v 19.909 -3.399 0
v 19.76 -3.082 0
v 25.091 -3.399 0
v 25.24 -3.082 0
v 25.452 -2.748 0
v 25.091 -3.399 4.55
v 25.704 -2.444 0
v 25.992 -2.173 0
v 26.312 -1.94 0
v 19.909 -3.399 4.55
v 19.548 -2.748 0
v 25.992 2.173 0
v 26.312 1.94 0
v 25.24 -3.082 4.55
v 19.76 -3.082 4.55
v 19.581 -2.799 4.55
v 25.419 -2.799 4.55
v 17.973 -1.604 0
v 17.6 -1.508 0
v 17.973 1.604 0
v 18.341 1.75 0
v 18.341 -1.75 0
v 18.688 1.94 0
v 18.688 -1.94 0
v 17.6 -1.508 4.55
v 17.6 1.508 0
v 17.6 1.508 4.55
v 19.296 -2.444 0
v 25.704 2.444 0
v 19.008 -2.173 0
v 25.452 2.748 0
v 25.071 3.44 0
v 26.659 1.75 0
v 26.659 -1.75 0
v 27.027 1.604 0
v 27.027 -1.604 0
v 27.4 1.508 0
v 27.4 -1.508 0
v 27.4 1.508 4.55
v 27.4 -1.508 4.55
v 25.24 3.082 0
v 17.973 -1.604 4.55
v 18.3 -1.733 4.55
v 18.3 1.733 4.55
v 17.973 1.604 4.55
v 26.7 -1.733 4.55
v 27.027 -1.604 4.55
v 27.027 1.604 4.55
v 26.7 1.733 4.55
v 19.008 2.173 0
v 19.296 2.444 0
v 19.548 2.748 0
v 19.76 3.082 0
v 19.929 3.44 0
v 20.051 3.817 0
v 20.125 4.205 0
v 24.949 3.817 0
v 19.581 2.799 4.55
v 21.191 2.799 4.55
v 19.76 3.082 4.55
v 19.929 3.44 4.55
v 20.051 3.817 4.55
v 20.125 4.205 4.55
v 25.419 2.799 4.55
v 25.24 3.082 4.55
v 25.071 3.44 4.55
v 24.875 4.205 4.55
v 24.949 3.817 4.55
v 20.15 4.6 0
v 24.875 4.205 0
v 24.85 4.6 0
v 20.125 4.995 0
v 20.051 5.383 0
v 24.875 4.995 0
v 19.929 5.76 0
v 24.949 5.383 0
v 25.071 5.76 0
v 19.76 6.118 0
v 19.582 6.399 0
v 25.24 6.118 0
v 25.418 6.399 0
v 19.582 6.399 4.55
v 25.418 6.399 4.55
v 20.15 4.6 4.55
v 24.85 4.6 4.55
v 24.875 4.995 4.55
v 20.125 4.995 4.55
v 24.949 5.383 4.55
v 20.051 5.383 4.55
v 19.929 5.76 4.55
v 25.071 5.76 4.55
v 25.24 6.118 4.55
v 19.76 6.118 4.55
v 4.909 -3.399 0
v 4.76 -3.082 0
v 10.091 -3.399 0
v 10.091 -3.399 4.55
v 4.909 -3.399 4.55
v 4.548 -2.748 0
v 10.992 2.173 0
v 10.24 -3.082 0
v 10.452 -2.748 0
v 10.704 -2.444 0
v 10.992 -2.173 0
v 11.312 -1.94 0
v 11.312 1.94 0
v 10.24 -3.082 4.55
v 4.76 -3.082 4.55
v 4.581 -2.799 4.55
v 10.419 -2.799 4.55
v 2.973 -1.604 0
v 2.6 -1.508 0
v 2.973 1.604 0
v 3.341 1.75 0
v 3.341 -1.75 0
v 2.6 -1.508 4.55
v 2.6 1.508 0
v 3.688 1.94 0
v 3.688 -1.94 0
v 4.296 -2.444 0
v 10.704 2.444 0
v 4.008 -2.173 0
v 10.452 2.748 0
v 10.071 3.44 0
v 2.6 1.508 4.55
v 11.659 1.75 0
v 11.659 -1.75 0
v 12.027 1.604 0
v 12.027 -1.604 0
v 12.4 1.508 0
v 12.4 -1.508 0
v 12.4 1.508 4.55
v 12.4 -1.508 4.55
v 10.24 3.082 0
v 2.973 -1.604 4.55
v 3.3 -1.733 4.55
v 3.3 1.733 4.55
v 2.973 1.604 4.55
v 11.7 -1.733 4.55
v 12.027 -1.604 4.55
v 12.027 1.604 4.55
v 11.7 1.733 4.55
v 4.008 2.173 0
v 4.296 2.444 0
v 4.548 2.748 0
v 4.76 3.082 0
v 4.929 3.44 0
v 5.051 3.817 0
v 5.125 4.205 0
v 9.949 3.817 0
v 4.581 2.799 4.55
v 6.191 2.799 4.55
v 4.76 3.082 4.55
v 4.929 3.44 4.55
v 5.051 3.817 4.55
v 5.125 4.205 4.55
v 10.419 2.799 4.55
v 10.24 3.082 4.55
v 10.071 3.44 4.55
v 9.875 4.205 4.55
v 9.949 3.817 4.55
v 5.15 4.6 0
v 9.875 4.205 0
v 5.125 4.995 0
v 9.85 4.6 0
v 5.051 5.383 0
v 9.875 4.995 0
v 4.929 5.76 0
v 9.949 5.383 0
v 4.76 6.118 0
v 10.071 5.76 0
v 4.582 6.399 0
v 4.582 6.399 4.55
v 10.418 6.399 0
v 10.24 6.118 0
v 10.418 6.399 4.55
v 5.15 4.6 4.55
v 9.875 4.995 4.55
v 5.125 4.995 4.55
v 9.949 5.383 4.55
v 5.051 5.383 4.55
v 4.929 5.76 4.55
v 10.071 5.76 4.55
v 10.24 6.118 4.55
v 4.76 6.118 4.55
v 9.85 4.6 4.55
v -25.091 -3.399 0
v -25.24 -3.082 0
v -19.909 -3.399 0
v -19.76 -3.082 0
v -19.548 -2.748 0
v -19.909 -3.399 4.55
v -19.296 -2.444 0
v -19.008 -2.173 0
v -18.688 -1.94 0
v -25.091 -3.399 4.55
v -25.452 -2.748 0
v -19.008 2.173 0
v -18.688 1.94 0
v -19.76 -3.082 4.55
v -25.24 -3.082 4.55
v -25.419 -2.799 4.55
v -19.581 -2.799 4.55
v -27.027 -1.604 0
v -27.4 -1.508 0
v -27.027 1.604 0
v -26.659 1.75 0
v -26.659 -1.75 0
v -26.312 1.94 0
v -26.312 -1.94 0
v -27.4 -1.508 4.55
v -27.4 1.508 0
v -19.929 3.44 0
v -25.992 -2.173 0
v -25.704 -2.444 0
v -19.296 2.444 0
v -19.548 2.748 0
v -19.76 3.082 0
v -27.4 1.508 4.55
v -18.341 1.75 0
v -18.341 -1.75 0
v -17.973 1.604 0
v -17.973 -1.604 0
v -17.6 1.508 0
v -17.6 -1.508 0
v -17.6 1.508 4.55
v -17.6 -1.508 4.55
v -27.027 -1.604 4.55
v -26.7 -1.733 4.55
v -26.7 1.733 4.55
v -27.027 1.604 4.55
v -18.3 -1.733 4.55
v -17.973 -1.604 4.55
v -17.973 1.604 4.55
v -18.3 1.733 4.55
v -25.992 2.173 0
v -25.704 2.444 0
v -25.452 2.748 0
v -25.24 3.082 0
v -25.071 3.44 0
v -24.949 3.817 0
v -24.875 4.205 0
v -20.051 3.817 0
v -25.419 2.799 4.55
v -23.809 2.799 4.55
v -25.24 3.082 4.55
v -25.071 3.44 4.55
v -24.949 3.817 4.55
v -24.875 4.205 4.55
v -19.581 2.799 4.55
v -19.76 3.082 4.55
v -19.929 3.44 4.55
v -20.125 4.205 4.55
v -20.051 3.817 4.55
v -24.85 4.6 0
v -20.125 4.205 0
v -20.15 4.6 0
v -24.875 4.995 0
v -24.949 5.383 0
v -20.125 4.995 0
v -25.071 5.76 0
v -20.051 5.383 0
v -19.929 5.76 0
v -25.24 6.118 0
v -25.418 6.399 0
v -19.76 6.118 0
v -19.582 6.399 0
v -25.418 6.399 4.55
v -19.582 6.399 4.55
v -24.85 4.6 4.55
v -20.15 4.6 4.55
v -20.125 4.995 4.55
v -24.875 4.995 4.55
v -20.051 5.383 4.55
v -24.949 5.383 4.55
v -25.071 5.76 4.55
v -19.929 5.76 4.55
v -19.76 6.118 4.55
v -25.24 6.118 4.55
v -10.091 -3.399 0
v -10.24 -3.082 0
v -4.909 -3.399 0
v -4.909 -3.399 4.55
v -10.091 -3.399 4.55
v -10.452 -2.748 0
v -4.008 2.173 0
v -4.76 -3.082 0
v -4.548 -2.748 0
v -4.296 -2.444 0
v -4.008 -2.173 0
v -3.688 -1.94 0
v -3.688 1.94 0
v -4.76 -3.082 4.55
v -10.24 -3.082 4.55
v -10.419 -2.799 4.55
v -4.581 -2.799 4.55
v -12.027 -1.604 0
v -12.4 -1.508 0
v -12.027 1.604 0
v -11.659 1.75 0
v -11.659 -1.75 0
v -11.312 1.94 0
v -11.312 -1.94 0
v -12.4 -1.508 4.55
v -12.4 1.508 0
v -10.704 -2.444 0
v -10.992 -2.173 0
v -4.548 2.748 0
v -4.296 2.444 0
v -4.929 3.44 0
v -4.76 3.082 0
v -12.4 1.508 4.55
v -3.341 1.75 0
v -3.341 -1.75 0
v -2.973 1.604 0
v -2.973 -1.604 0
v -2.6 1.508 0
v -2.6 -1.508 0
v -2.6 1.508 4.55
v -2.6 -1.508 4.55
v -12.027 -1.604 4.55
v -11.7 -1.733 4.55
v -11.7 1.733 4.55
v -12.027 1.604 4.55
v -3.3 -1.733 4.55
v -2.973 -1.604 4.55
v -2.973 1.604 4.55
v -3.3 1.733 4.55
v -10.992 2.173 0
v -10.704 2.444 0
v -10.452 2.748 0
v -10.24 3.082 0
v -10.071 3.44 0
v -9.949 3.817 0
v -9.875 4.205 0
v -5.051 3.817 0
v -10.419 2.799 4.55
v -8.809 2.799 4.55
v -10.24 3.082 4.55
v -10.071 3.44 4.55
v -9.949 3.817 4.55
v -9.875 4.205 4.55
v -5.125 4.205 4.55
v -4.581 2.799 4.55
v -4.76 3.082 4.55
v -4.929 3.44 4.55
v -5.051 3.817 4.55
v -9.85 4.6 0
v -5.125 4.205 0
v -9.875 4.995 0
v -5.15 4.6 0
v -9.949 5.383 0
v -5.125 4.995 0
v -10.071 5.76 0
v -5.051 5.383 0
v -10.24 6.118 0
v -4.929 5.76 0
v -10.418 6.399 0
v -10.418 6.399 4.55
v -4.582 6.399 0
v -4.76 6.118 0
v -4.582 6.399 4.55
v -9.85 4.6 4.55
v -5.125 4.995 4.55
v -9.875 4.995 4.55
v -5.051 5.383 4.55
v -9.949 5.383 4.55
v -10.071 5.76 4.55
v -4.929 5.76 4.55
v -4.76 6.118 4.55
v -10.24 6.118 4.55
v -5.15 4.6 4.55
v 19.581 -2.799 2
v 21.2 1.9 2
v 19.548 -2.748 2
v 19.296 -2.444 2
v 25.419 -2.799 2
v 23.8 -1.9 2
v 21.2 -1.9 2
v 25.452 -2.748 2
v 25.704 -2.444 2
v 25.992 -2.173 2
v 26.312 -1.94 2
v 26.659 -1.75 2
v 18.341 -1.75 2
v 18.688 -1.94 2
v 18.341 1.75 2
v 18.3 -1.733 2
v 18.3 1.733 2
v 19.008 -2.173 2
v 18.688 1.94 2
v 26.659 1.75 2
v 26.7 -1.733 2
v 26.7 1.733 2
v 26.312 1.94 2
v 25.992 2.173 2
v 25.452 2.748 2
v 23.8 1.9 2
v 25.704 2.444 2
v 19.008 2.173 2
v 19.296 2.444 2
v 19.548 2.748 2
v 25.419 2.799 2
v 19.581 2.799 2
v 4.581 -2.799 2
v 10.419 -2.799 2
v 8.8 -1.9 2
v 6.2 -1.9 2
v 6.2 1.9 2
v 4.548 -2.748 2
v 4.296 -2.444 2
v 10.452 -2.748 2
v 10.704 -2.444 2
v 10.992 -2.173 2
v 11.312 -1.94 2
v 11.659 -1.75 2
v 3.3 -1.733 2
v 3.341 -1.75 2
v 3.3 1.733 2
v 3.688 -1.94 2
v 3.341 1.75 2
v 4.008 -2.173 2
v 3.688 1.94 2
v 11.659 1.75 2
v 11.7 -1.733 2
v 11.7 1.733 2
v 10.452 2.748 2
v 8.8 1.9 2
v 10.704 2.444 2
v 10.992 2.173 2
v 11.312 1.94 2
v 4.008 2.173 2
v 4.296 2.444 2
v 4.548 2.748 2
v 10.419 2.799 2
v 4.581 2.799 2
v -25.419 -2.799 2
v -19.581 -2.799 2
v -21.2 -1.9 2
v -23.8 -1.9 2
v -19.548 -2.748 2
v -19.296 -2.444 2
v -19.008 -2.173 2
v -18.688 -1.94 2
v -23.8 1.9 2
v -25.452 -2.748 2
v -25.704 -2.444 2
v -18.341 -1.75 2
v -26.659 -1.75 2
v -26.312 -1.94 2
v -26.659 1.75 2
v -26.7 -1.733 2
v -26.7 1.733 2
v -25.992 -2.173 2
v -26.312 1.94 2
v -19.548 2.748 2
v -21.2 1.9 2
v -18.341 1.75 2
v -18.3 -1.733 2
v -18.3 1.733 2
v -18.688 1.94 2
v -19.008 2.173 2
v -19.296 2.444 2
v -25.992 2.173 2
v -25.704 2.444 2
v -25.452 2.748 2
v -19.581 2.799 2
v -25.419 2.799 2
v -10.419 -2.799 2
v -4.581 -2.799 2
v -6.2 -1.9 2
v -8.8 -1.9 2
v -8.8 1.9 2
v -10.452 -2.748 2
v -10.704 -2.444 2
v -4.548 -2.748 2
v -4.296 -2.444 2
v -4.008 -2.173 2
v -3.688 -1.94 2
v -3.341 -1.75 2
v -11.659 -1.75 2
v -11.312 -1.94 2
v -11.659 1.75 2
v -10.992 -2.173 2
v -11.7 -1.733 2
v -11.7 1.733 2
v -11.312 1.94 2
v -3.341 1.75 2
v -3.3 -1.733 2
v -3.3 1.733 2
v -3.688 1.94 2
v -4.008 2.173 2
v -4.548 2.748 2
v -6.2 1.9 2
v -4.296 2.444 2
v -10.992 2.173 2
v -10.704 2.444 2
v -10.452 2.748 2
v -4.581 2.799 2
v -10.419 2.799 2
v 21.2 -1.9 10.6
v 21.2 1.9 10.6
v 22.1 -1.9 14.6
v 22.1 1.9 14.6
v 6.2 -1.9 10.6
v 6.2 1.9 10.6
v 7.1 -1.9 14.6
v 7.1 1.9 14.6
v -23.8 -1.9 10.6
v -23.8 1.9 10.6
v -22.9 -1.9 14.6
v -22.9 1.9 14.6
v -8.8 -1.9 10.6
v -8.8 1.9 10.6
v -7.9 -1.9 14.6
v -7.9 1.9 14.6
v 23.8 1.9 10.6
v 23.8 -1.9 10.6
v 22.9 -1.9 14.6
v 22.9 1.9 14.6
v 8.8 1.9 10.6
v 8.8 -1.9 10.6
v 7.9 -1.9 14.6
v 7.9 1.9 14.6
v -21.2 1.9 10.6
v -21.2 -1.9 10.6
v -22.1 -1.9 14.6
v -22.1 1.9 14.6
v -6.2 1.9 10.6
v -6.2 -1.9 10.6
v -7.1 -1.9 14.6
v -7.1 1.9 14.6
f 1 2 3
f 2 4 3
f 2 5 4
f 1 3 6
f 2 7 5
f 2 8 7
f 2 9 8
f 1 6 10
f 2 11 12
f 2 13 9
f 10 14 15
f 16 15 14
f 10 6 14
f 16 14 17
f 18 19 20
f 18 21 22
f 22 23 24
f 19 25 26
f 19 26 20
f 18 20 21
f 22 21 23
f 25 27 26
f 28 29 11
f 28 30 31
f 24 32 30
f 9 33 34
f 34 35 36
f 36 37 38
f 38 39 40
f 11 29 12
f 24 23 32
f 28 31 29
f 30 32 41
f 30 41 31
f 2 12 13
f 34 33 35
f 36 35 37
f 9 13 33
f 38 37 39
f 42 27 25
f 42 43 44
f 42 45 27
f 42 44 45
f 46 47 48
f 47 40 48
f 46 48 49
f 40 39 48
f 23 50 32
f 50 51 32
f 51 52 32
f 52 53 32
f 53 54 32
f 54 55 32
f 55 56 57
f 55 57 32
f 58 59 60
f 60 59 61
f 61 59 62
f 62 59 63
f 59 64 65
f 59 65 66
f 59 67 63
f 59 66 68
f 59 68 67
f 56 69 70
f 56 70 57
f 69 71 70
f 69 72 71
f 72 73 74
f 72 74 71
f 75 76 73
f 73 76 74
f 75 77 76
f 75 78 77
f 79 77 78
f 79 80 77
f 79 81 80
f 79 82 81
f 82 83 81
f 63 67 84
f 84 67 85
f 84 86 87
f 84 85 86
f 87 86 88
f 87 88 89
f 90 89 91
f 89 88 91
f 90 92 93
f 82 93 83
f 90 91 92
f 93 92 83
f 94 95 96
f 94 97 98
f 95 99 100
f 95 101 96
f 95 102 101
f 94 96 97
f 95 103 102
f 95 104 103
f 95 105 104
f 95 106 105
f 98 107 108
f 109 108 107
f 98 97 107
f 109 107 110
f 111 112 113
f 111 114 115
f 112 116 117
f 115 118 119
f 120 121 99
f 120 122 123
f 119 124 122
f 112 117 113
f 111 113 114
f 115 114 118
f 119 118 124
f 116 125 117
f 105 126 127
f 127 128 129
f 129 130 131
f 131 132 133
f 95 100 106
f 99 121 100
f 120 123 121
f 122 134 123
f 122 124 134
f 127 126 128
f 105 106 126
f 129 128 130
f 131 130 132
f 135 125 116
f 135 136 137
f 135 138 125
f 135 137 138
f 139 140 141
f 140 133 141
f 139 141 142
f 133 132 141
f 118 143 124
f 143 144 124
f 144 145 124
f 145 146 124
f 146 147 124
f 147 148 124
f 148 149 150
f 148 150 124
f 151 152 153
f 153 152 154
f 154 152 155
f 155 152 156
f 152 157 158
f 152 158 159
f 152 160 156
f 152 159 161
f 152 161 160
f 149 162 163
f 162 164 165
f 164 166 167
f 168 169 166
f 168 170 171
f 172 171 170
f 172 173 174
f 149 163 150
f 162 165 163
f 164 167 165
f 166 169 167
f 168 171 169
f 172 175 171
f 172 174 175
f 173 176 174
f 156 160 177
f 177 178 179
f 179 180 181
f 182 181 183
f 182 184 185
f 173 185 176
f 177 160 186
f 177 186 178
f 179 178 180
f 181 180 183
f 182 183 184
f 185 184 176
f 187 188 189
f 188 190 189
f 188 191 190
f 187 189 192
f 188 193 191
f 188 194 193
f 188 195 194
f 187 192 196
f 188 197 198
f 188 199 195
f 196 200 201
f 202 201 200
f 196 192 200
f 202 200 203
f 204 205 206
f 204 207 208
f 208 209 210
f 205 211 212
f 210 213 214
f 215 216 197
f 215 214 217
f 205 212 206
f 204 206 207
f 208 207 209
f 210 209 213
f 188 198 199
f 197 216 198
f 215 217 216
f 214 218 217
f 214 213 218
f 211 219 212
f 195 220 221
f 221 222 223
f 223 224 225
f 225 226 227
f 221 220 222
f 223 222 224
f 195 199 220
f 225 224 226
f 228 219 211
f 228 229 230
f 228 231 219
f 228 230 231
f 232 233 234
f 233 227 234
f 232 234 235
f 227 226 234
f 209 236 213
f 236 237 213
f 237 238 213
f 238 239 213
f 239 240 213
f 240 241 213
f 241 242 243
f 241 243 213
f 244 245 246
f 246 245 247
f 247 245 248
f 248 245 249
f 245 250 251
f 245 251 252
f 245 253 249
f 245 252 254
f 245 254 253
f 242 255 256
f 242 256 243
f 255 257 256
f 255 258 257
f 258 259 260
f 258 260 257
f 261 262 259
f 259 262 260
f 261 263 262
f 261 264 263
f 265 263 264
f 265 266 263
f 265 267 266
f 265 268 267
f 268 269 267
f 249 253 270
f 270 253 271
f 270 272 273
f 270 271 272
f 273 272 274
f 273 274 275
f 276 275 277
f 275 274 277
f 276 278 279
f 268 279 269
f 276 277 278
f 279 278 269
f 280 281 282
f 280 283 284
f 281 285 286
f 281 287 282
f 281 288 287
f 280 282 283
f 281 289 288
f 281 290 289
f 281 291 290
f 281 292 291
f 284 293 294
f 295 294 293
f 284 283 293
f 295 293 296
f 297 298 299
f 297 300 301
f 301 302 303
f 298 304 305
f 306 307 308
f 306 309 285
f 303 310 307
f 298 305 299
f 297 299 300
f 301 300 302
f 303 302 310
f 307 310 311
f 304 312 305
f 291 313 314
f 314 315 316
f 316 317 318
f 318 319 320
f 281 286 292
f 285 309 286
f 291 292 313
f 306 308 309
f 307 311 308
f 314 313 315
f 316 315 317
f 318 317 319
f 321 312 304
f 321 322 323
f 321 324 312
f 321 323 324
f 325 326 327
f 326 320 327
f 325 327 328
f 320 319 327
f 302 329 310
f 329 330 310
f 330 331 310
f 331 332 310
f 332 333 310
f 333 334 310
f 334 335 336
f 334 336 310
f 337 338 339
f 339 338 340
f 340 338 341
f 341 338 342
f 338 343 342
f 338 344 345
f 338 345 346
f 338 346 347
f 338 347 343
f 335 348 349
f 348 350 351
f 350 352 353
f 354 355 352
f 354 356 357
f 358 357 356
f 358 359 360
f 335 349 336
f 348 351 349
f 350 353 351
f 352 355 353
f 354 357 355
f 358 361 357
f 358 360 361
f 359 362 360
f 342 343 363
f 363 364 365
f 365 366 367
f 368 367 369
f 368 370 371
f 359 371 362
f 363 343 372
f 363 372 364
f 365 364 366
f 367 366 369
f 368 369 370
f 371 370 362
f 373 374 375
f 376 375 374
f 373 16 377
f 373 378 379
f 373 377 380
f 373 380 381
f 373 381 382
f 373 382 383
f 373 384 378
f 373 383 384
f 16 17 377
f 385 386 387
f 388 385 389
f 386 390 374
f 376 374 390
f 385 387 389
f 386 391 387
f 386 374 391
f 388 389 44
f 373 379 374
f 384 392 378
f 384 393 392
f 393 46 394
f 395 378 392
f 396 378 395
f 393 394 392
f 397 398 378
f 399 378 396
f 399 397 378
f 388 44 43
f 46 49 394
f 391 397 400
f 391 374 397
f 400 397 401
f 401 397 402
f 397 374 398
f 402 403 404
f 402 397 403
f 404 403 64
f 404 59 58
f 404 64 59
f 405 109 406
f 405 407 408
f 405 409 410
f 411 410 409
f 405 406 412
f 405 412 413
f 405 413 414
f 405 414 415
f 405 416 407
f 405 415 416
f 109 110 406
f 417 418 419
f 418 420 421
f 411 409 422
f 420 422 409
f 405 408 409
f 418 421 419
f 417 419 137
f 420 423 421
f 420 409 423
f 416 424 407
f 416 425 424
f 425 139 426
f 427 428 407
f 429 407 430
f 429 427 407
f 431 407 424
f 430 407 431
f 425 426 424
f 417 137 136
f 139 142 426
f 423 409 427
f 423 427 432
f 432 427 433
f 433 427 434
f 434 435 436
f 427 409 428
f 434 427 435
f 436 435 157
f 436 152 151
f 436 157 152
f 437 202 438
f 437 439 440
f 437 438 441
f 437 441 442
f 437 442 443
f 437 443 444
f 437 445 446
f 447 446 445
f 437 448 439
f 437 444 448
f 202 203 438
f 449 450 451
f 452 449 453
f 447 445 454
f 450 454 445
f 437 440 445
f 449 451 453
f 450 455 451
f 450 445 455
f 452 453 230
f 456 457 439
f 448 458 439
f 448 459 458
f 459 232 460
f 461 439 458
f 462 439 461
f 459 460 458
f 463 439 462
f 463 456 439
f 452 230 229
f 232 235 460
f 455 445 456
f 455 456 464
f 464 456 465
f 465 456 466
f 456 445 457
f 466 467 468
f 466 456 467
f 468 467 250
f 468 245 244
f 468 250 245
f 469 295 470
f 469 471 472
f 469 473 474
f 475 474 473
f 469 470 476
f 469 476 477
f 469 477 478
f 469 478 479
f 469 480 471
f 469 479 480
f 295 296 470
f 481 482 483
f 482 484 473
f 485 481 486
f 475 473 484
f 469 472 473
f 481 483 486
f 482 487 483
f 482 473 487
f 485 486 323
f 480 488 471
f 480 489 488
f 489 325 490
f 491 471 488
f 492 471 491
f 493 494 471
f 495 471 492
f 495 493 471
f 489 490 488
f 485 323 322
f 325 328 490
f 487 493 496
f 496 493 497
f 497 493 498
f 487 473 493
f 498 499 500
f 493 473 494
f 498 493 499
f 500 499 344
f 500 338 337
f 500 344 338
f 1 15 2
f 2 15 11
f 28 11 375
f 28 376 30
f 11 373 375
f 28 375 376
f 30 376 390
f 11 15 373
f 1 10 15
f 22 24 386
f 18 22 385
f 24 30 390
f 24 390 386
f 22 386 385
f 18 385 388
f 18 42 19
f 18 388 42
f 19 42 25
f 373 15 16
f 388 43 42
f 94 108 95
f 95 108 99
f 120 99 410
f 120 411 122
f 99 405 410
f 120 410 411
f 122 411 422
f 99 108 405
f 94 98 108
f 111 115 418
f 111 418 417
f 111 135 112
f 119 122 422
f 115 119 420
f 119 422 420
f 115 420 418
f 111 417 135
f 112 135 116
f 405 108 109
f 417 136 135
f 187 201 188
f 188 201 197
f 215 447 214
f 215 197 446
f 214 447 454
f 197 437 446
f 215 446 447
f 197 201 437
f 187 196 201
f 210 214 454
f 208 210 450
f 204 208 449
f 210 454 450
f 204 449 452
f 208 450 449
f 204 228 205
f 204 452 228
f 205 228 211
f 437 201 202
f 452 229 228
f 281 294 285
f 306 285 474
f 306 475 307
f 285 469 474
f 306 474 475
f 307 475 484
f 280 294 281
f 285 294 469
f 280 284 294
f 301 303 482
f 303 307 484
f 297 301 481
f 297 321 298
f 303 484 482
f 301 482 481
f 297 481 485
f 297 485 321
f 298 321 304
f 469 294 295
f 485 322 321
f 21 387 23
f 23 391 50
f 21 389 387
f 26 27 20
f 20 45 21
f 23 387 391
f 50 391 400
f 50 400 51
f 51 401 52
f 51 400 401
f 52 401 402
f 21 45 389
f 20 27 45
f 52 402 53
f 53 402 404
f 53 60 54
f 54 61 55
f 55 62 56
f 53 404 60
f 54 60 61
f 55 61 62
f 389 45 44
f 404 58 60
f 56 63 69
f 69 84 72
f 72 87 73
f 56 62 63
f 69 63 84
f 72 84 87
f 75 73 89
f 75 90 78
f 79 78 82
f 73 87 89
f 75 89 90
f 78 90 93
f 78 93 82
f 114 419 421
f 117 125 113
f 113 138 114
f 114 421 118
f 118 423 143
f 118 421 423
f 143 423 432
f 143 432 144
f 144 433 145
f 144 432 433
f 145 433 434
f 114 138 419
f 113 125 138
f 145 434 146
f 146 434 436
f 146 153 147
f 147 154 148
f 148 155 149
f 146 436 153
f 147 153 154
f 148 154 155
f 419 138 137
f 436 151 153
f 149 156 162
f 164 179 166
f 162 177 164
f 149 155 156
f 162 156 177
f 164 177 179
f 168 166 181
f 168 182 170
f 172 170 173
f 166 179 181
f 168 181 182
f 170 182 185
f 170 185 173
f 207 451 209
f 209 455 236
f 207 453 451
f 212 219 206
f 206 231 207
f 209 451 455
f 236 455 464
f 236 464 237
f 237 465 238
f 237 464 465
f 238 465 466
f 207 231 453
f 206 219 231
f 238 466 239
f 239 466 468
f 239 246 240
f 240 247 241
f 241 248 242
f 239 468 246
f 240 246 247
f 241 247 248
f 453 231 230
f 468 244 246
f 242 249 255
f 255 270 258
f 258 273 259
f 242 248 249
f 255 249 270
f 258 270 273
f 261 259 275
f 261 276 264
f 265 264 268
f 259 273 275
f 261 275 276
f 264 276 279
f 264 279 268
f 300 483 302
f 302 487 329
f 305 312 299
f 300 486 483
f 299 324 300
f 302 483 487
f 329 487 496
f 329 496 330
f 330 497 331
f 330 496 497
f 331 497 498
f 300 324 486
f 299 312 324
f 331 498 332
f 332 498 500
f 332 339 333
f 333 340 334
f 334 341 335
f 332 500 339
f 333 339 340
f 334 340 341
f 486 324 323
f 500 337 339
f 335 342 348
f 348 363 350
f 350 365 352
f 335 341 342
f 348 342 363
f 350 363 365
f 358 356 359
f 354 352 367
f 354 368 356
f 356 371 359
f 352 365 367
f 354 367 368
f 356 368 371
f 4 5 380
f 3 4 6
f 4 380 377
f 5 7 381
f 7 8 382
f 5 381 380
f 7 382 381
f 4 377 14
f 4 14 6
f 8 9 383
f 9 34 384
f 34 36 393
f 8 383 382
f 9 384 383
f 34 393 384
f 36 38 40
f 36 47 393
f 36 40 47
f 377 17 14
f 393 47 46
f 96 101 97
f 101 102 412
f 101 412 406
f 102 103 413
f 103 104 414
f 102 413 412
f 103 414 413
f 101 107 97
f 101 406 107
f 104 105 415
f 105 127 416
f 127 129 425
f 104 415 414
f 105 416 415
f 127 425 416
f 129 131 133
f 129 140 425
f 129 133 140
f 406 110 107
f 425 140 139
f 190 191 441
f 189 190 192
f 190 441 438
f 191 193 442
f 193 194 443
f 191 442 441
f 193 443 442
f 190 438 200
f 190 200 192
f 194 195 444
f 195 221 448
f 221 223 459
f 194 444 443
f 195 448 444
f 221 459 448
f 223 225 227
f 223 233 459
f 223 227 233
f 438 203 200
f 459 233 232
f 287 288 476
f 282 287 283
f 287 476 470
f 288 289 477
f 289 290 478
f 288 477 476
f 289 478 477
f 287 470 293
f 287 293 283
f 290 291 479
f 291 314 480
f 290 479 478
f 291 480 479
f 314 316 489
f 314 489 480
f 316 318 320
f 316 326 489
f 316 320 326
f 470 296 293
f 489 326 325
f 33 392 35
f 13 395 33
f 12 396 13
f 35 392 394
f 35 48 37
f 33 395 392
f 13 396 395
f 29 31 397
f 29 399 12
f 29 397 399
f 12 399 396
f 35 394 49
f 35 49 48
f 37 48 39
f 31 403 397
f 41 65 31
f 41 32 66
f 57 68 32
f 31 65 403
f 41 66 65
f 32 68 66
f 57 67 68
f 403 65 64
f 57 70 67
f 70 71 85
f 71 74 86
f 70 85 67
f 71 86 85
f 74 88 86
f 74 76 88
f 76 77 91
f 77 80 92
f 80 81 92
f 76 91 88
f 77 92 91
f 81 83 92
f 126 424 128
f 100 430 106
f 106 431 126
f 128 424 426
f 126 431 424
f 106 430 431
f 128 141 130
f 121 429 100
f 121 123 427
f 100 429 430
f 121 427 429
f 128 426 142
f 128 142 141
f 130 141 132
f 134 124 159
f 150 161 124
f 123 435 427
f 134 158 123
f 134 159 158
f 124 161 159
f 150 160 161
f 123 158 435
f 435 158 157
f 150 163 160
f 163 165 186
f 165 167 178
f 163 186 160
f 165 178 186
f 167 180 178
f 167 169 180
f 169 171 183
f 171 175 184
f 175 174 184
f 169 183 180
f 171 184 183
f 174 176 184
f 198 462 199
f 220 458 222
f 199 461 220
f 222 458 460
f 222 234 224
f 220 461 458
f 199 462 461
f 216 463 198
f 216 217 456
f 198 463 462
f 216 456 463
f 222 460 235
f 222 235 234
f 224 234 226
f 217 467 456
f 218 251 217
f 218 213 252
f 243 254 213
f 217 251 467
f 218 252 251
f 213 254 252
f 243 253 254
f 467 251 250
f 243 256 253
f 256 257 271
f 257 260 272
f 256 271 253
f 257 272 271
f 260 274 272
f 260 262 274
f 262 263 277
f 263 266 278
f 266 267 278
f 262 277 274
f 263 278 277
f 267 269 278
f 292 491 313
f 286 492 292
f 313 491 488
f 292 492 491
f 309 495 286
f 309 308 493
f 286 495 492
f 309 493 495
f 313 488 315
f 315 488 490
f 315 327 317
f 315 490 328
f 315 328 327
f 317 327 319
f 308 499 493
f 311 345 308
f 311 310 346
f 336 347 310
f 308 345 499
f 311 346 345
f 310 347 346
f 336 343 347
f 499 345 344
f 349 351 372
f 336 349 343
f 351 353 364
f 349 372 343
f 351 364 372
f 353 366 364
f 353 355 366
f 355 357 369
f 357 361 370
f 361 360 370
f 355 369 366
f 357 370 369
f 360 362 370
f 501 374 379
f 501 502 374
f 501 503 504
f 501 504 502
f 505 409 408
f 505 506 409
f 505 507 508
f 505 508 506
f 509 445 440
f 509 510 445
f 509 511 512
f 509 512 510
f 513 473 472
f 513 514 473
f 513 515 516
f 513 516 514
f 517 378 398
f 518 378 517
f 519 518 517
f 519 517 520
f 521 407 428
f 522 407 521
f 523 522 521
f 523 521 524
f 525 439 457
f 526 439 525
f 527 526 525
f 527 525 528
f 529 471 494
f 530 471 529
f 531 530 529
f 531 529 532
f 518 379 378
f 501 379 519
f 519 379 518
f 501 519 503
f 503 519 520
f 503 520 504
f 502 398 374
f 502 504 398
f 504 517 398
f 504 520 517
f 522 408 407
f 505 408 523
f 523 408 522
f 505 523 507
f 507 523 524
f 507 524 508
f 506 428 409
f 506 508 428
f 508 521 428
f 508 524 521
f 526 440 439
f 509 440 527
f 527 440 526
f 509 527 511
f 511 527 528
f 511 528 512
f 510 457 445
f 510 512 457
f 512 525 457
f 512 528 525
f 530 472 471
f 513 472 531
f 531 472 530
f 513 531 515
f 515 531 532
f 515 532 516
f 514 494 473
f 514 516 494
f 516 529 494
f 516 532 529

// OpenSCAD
$fn = 50;

difference() {
	union() {
		translate(v = [-22.5, 0, 0]) {
			rotate(a = [0, 0, 0]) {
				difference() {
					union() {
						translate(v = [0, 0, 0]) {
							rotate(a = [0, 0, 0]) {
								difference() {
									union() {
										translate(v = [0, 0, 0]) {
											rotate(a = [0, 0, 0]) {
												difference() {
													union() {
														translate(v = [0, 1.5, 0]) {
															hull() {
																translate(v = [-4.15, 4.15, 0]) {
																	cylinder(h = 4.55, r = 0.75);
																}
																translate(v = [4.15, 4.15, 0]) {
																	cylinder(h = 4.55, r = 0.75);
																}
																translate(v = [-4.15, -4.15, 0]) {
																	cylinder(h = 4.55, r = 0.75);
																}
																translate(v = [4.15, -4.15, 0]) {
																	cylinder(h = 4.55, r = 0.75);
																}
															}
														}
													}
													union() {
														translate(v = [0, 0, 2.0]) {
															hull() {
																translate(v = [-3.9000000000000004, 2.5, 0]) {
																	cylinder(h = 2.65, r = 0.3);
																}
																translate(v = [3.9000000000000004, 2.5, 0]) {
																	cylinder(h = 2.65, r = 0.3);
																}
																translate(v = [-3.9000000000000004, -2.5, 0]) {
																	cylinder(h = 2.65, r = 0.3);
																}
																translate(v = [3.9000000000000004, -2.5, 0]) {
																	cylinder(h = 2.65, r = 0.3);
																}
															}
														}
														translate(v = [-5.5, -4.6, -0.1]) {
															cylinder(h = 4.75, r = 3.15);
														}
														translate(v = [-5.5, 4.6, -0.1]) {
															cylinder(h = 4.75, r = 3.15);
														}
														translate(v = [5.5, -4.6, -0.1]) {
															cylinder(h = 4.75, r = 3.15);
														}
														translate(v = [5.5, 4.6, -0.1]) {
															cylinder(h = 4.75, r = 3.15);
														}
													}
												}
											}
										}
										translate(v = [0, 0, 0]) {
											rotate(a = [0, 0, 0]) {
												difference() {
													union() {
														translate(v = [-1.4000000000000001, -1.9, 1.95]) {
															cube(size = [2.8000000000000003, 3.8, 12.65]);
														}
													}
													union() {
														translate(v = [0, 2.0, 0]) {
															rotate(a = [90, 0, 0]) {
																linear_extrude(height = 4.0) {
																	polygon(points = [[-1.3, 1.85], [-1.3, 10.6], [-0.4, 14.6], [-0.4, 14.799999999999999], [-1.6, 14.799999999999999], [-1.6, 1.85]]);
																}
															}
														}
														translate(v = [0, 2.0, 0]) {
															rotate(a = [90, 0, 0]) {
																linear_extrude(height = 4.0) {
																	polygon(points = [[1.3, 1.85], [1.3, 10.6], [0.4, 14.6], [0.4, 14.799999999999999], [1.6, 14.799999999999999], [1.6, 1.85]]);
																}
															}
														}
													}
												}
											}
										}
									}
									union();
								}
							}
						}
					}
					union();
				}
			}
		}
		translate(v = [-7.5, 0, 0]) {
			rotate(a = [0, 0, 0]) {
				difference() {
					union() {
						translate(v = [0, 0, 0]) {
							rotate(a = [0, 0, 0]) {
								difference() {
									union() {
										translate(v = [0, 0, 0]) {
											rotate(a = [0, 0, 0]) {
												difference() {
													union() {
														translate(v = [0, 1.5, 0]) {
															hull() {
																translate(v = [-4.15, 4.15, 0]) {
																	cylinder(h = 4.55, r = 0.75);
																}
																translate(v = [4.15, 4.15, 0]) {
																	cylinder(h = 4.55, r = 0.75);
																}
																translate(v = [-4.15, -4.15, 0]) {
																	cylinder(h = 4.55, r = 0.75);
																}
																translate(v = [4.15, -4.15, 0]) {
																	cylinder(h = 4.55, r = 0.75);
																}
															}
														}
													}
													union() {
														translate(v = [0, 0, 2.0]) {
															hull() {
																translate(v = [-3.9000000000000004, 2.5, 0]) {
																	cylinder(h = 2.65, r = 0.3);
																}
																translate(v = [3.9000000000000004, 2.5, 0]) {
																	cylinder(h = 2.65, r = 0.3);
																}
																translate(v = [-3.9000000000000004, -2.5, 0]) {
																	cylinder(h = 2.65, r = 0.3);
																}
																translate(v = [3.9000000000000004, -2.5, 0]) {
																	cylinder(h = 2.65, r = 0.3);
																}
															}
														}
														translate(v = [-5.5, -4.6, -0.1]) {
															cylinder(h = 4.75, r = 3.15);
														}
														translate(v = [-5.5, 4.6, -0.1]) {
															cylinder(h = 4.75, r = 3.15);
														}
														translate(v = [5.5, -4.6, -0.1]) {
															cylinder(h = 4.75, r = 3.15);
														}
														translate(v = [5.5, 4.6, -0.1]) {
															cylinder(h = 4.75, r = 3.15);
														}
													}
												}
											}
										}
										translate(v = [0, 0, 0]) {
											rotate(a = [0, 0, 0]) {
												difference() {
													union() {
														translate(v = [-1.4000000000000001, -1.9, 1.95]) {
															cube(size = [2.8000000000000003, 3.8, 12.65]);
														}
													}
													union() {
														translate(v = [0, 2.0, 0]) {
															rotate(a = [90, 0, 0]) {
																linear_extrude(height = 4.0) {
																	polygon(points = [[-1.3, 1.85], [-1.3, 10.6], [-0.4, 14.6], [-0.4, 14.799999999999999], [-1.6, 14.799999999999999], [-1.6, 1.85]]);
																}
															}
														}
														translate(v = [0, 2.0, 0]) {
															rotate(a = [90, 0, 0]) {
																linear_extrude(height = 4.0) {
																	polygon(points = [[1.3, 1.85], [1.3, 10.6], [0.4, 14.6], [0.4, 14.799999999999999], [1.6, 14.799999999999999], [1.6, 1.85]]);
																}
															}
														}
													}
												}
											}
										}
									}
									union();
								}
							}
						}
					}
					union();
				}
			}
		}
		translate(v = [7.5, 0, 0]) {
			rotate(a = [0, 0, 0]) {
				difference() {
					union() {
						translate(v = [0, 0, 0]) {
							rotate(a = [0, 0, 0]) {
								difference() {
									union() {
										translate(v = [0, 0, 0]) {
											rotate(a = [0, 0, 0]) {
												difference() {
													union() {
														translate(v = [0, 1.5, 0]) {
															hull() {
																translate(v = [-4.15, 4.15, 0]) {
																	cylinder(h = 4.55, r = 0.75);
																}
																translate(v = [4.15, 4.15, 0]) {
																	cylinder(h = 4.55, r = 0.75);
																}
																translate(v = [-4.15, -4.15, 0]) {
																	cylinder(h = 4.55, r = 0.75);
																}
																translate(v = [4.15, -4.15, 0]) {
																	cylinder(h = 4.55, r = 0.75);
																}
															}
														}
													}
													union() {
														translate(v = [0, 0, 2.0]) {
															hull() {
																translate(v = [-3.9000000000000004, 2.5, 0]) {
																	cylinder(h = 2.65, r = 0.3);
																}
																translate(v = [3.9000000000000004, 2.5, 0]) {
																	cylinder(h = 2.65, r = 0.3);
																}
																translate(v = [-3.9000000000000004, -2.5, 0]) {
																	cylinder(h = 2.65, r = 0.3);
																}
																translate(v = [3.9000000000000004, -2.5, 0]) {
																	cylinder(h = 2.65, r = 0.3);
																}
															}
														}
														translate(v = [-5.5, -4.6, -0.1]) {
															cylinder(h = 4.75, r = 3.15);
														}
														translate(v = [-5.5, 4.6, -0.1]) {
															cylinder(h = 4.75, r = 3.15);
														}
														translate(v = [5.5, -4.6, -0.1]) {
															cylinder(h = 4.75, r = 3.15);
														}
														translate(v = [5.5, 4.6, -0.1]) {
															cylinder(h = 4.75, r = 3.15);
														}
													}
												}
											}
										}
										translate(v = [0, 0, 0]) {
											rotate(a = [0, 0, 0]) {
												difference() {
													union() {
														translate(v = [-1.4000000000000001, -1.9, 1.95]) {
															cube(size = [2.8000000000000003, 3.8, 12.65]);
														}
													}
													union() {
														translate(v = [0, 2.0, 0]) {
															rotate(a = [90, 0, 0]) {
																linear_extrude(height = 4.0) {
																	polygon(points = [[-1.3, 1.85], [-1.3, 10.6], [-0.4, 14.6], [-0.4, 14.799999999999999], [-1.6, 14.799999999999999], [-1.6, 1.85]]);
																}
															}
														}
														translate(v = [0, 2.0, 0]) {
															rotate(a = [90, 0, 0]) {
																linear_extrude(height = 4.0) {
																	polygon(points = [[1.3, 1.85], [1.3, 10.6], [0.4, 14.6], [0.4, 14.799999999999999], [1.6, 14.799999999999999], [1.6, 1.85]]);
																}
															}
														}
													}
												}
											}
										}
									}
									union();
								}
							}
						}
					}
					union();
				}
			}
		}
		translate(v = [22.5, 0, 0]) {
			rotate(a = [0, 0, 0]) {
				difference() {
					union() {
						translate(v = [0, 0, 0]) {
							rotate(a = [0, 0, 0]) {
								difference() {
									union() {
										translate(v = [0, 0, 0]) {
											rotate(a = [0, 0, 0]) {
												difference() {
													union() {
														translate(v = [0, 1.5, 0]) {
															hull() {
																translate(v = [-4.15, 4.15, 0]) {
																	cylinder(h = 4.55, r = 0.75);
																}
																translate(v = [4.15, 4.15, 0]) {
																	cylinder(h = 4.55, r = 0.75);
																}
																translate(v = [-4.15, -4.15, 0]) {
																	cylinder(h = 4.55, r = 0.75);
																}
																translate(v = [4.15, -4.15, 0]) {
																	cylinder(h = 4.55, r = 0.75);
																}
															}
														}
													}
													union() {
														translate(v = [0, 0, 2.0]) {
															hull() {
																translate(v = [-3.9000000000000004, 2.5, 0]) {
																	cylinder(h = 2.65, r = 0.3);
																}
																translate(v = [3.9000000000000004, 2.5, 0]) {
																	cylinder(h = 2.65, r = 0.3);
																}
																translate(v = [-3.9000000000000004, -2.5, 0]) {
																	cylinder(h = 2.65, r = 0.3);
																}
																translate(v = [3.9000000000000004, -2.5, 0]) {
																	cylinder(h = 2.65, r = 0.3);
																}
															}
														}
														translate(v = [-5.5, -4.6, -0.1]) {
															cylinder(h = 4.75, r = 3.15);
														}
														translate(v = [-5.5, 4.6, -0.1]) {
															cylinder(h = 4.75, r = 3.15);
														}
														translate(v = [5.5, -4.6, -0.1]) {
															cylinder(h = 4.75, r = 3.15);
														}
														translate(v = [5.5, 4.6, -0.1]) {
															cylinder(h = 4.75, r = 3.15);
														}
													}
												}
											}
										}
										translate(v = [0, 0, 0]) {
											rotate(a = [0, 0, 0]) {
												difference() {
													union() {
														translate(v = [-1.4000000000000001, -1.9, 1.95]) {
															cube(size = [2.8000000000000003, 3.8, 12.65]);
														}
													}
													union() {
														translate(v = [0, 2.0, 0]) {
															rotate(a = [90, 0, 0]) {
																linear_extrude(height = 4.0) {
																	polygon(points = [[-1.3, 1.85], [-1.3, 10.6], [-0.4, 14.6], [-0.4, 14.799999999999999], [-1.6, 14.799999999999999], [-1.6, 1.85]]);
																}
															}
														}
														translate(v = [0, 2.0, 0]) {
															rotate(a = [90, 0, 0]) {
																linear_extrude(height = 4.0) {
																	polygon(points = [[1.3, 1.85], [1.3, 10.6], [0.4, 14.6], [0.4, 14.799999999999999], [1.6, 14.799999999999999], [1.6, 1.85]]);
																}
															}
														}
													}
												}
											}
										}
									}
									union();
								}
							}
						}
					}
					union();
				}
			}
		}
	}
	union();
}
